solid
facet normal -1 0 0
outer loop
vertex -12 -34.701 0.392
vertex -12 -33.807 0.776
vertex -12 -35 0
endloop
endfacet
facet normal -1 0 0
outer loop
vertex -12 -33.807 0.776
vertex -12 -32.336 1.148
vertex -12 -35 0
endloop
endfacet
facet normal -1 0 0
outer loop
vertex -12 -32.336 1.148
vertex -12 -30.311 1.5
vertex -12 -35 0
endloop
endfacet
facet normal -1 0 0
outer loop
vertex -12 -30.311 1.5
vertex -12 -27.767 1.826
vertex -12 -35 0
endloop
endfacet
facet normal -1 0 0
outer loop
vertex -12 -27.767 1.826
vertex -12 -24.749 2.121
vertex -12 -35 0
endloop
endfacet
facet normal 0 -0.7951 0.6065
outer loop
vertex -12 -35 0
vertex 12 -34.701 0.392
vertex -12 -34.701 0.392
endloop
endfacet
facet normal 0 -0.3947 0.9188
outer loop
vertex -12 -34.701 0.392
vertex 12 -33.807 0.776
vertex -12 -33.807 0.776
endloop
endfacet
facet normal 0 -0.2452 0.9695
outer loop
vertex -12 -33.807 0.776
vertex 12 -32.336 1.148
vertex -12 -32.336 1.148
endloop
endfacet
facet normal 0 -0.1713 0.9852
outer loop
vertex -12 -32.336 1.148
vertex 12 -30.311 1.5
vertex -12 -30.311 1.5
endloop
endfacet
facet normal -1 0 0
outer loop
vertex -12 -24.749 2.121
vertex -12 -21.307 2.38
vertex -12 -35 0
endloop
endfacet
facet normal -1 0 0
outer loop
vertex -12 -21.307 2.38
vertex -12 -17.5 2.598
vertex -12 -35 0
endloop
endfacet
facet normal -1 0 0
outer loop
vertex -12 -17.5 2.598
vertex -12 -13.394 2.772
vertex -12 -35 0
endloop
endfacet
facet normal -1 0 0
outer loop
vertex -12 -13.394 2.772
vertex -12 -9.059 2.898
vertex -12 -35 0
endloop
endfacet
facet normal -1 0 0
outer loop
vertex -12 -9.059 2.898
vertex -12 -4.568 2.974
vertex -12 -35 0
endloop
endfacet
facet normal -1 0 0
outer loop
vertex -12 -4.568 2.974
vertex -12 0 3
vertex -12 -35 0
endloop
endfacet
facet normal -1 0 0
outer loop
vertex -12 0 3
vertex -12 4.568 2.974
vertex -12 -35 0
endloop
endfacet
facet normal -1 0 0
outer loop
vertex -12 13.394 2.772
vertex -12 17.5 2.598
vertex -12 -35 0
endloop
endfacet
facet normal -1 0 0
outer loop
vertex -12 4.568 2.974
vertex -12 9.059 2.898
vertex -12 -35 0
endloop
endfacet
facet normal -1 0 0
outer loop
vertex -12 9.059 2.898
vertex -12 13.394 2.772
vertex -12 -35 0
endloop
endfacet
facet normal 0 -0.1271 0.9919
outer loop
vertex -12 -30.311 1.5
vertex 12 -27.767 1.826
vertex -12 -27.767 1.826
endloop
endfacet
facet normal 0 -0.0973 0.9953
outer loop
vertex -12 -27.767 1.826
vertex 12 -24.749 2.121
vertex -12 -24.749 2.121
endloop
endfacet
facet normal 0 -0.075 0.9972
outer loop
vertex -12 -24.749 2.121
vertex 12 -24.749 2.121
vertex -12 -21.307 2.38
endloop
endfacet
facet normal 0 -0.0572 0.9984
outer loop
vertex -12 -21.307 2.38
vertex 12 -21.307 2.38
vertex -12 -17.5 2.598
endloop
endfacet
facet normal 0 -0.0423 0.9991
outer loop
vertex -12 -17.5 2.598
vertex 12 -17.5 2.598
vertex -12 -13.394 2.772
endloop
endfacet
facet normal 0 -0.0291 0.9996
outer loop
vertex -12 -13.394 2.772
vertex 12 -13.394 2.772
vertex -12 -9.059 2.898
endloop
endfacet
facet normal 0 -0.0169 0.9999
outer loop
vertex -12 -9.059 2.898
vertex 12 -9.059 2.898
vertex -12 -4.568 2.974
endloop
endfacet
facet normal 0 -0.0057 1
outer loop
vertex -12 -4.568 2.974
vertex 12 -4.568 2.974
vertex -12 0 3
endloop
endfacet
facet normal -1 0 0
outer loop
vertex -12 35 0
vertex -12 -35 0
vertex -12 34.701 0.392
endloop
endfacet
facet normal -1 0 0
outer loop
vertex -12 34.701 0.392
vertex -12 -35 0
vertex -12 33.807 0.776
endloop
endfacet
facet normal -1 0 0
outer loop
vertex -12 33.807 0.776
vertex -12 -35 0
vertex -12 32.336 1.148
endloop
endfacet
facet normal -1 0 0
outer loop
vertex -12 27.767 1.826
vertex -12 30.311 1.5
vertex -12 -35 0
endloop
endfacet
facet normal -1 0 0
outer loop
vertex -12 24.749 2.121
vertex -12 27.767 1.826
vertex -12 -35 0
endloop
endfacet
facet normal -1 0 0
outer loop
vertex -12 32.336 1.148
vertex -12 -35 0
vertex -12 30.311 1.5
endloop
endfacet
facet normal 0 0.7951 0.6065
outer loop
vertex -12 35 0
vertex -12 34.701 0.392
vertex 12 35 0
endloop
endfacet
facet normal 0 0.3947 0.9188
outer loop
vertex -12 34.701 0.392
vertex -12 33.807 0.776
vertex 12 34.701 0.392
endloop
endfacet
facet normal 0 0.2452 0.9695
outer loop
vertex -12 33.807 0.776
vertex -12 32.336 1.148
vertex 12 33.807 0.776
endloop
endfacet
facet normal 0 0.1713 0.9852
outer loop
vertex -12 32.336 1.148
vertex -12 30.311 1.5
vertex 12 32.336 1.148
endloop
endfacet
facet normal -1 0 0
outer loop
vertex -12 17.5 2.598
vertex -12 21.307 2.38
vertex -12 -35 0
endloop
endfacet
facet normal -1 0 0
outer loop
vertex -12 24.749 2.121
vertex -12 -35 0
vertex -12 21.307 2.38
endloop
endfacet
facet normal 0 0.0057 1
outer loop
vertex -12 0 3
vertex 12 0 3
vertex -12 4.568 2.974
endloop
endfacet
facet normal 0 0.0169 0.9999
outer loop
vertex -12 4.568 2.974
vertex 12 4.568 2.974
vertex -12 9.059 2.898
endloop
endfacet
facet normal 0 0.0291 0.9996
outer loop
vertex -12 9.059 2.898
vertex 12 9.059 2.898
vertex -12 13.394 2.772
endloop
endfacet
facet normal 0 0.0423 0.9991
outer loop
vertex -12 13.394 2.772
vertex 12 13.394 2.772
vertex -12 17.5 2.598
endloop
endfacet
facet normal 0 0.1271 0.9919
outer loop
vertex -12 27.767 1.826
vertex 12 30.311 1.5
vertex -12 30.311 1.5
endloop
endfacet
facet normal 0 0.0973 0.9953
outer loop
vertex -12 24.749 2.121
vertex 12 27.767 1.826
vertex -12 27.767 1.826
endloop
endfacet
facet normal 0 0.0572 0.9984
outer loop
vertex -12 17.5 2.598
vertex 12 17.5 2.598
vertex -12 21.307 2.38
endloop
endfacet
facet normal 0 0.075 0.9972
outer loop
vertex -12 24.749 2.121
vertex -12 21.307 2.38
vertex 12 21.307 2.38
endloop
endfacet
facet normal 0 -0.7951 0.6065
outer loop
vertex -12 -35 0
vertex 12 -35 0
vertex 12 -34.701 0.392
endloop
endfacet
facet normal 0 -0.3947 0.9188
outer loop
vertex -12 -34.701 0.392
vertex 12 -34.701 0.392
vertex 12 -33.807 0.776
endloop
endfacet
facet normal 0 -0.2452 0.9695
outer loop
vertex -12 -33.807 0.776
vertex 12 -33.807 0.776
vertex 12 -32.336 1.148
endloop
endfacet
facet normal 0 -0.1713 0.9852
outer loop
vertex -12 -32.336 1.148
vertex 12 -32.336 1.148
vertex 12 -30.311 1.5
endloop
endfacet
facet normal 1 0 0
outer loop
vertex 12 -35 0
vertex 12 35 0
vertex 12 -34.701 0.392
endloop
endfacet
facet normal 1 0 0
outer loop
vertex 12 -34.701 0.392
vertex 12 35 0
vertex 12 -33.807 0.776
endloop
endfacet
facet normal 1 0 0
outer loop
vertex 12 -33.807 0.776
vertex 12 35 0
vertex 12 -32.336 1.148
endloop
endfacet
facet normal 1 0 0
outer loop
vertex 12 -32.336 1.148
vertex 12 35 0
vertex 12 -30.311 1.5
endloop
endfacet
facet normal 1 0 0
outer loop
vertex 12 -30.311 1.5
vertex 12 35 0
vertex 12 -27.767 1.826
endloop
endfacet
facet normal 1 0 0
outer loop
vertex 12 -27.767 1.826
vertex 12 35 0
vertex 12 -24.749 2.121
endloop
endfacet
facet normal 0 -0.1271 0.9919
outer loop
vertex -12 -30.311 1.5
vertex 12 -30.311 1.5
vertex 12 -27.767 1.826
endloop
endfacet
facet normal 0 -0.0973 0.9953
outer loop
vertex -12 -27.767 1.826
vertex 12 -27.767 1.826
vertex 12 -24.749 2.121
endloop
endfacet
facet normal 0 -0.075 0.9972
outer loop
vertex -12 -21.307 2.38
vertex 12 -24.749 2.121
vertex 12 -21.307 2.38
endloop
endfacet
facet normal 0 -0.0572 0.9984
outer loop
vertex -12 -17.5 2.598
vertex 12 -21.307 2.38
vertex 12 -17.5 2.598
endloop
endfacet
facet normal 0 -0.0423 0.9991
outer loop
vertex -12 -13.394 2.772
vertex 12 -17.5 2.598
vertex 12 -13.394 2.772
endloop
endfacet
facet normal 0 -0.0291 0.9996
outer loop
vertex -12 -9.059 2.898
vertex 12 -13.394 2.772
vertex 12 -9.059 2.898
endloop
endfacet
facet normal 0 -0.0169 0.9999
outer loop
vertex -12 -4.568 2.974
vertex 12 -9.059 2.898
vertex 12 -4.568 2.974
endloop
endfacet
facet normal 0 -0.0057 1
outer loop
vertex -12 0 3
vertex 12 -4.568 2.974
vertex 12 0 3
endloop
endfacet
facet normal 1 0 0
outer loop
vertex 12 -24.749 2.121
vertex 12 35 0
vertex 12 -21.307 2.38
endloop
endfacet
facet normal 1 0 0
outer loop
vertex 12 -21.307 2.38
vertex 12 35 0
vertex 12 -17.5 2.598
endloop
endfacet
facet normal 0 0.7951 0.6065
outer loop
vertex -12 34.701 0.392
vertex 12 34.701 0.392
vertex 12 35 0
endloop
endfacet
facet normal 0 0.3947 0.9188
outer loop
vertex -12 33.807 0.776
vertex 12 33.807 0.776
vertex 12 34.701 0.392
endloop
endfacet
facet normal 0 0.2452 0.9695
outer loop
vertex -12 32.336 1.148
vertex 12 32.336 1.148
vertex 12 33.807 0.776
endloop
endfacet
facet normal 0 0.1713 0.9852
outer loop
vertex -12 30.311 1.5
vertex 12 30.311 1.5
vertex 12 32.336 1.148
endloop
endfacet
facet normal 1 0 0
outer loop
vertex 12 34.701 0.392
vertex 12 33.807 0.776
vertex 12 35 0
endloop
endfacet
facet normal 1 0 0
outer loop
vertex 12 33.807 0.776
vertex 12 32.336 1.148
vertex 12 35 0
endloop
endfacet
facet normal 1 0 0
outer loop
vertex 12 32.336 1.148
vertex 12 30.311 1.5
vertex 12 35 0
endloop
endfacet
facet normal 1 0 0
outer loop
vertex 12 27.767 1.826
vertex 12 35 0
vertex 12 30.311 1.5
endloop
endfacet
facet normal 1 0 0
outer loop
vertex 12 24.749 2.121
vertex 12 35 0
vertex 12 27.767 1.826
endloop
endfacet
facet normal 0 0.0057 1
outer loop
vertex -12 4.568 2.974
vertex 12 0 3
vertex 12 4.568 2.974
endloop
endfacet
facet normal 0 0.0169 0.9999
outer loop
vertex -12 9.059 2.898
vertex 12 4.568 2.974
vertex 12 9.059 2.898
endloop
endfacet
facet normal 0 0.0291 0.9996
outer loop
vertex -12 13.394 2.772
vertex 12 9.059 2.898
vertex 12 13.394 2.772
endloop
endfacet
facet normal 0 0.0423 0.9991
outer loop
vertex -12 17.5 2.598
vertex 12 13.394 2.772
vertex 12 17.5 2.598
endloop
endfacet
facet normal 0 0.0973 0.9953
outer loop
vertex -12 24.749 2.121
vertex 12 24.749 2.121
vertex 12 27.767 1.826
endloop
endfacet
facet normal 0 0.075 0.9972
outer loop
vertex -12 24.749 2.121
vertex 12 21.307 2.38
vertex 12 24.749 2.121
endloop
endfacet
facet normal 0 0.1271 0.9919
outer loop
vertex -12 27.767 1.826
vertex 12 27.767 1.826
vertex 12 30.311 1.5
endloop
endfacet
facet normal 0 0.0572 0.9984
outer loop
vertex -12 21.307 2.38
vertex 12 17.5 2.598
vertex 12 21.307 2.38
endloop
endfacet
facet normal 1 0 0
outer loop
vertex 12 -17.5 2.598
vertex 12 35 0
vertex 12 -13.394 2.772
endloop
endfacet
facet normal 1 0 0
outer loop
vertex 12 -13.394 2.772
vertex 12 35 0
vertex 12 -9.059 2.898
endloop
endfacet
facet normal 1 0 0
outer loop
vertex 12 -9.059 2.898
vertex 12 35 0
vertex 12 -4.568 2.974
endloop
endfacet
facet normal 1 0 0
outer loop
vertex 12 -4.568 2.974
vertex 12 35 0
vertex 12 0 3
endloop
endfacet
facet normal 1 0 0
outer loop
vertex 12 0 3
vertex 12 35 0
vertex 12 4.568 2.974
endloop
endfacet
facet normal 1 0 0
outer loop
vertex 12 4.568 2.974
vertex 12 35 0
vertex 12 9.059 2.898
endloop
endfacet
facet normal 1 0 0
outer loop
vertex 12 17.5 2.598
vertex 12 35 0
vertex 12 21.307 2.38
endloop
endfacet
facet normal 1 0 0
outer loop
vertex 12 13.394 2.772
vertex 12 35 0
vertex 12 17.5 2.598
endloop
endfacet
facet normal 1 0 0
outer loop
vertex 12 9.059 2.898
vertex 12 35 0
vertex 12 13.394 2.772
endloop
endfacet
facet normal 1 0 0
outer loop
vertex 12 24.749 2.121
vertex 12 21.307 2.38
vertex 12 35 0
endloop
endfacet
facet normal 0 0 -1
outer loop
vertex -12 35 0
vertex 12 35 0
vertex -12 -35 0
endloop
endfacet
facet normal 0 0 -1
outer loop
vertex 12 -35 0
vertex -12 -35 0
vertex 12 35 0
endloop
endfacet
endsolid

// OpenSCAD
// file: plate.scad
// Alignment plate for two side-by-side wooden key trays.
// A small plastic plate: two locating tabs, each nesting in the shallow
// decorative recess on a box's underside, joined by an arched bridge across
// the seam — so the two boxes stay aligned and can't drift apart.
//
// Axes: X runs across the two boxes (the bridge direction),
//       Y runs along the seam between them.

// Tab — the small rectangle that sits in each box's underside recess.
tab_w = 10;            // X, across the boxes
tab_h = 10;            // Y, along the seam
tab_thickness = 4;     // <= recess depth (~5mm) so the boxes don't rock
tab_r = 1.5;           // corner rounding

// Bridge — spans the seam and joins the two tabs.
gap_x = 20;            // exposed bridge span between the tabs (X)
bridge_thickness = 3;  // arch height at the peak
bridge_width = 70;     // bridge extent along the seam (Y)
weld = 2;              // how far the bridge tucks under each tab, for a solid join

// Derived
tab_center_x = gap_x / 2 + tab_w / 2;   // each tab's offset from centre
bridge_len_x = gap_x + 2 * weld;        // X length of the bridge bar

$fn = 48;

// A rounded rectangle of size [x, y], corner radius r, extruded to height h.
module rounded_slab(x, y, r, h) {
  linear_extrude(height = h)
    offset(r = r)
      square([x - 2 * r, y - 2 * r], center = true);
}

module tab() {
  rounded_slab(tab_w, tab_h, tab_r, tab_thickness);
}

module bridge() {
  // Cross-section (Y-Z) is a half-ellipse: flat bottom, arched top like a
  // bridge, peaking at bridge_thickness in the middle.
  r = bridge_width / 2;

  scale([1, 1, bridge_thickness / r])
    intersection() {
      rotate([0, 90, 0])
        cylinder(h = bridge_len_x, r = r, center = true);

      // Keep only the top half (z >= 0) so the bottom stays flat.
      translate([0, 0, r])
        cube([bridge_len_x + 1, bridge_width, 2 * r], center = true);
    }
}

module plate() {
  union() {
    for (sx = [-1, 1])
      translate([sx * tab_center_x, 0, 0])
        tab();

    bridge();
  }
}

// Render selector: "all" for the full plate, "bridge" to test just the bridge.
part = "all";

if (part == "bridge") bridge();
else plate();
// main file
// Fast-print tester: renders only the bridge from the alignment plate,
// to check the arch profile and print settings before committing filament.
include <plate.scad>

part = "bridge";
